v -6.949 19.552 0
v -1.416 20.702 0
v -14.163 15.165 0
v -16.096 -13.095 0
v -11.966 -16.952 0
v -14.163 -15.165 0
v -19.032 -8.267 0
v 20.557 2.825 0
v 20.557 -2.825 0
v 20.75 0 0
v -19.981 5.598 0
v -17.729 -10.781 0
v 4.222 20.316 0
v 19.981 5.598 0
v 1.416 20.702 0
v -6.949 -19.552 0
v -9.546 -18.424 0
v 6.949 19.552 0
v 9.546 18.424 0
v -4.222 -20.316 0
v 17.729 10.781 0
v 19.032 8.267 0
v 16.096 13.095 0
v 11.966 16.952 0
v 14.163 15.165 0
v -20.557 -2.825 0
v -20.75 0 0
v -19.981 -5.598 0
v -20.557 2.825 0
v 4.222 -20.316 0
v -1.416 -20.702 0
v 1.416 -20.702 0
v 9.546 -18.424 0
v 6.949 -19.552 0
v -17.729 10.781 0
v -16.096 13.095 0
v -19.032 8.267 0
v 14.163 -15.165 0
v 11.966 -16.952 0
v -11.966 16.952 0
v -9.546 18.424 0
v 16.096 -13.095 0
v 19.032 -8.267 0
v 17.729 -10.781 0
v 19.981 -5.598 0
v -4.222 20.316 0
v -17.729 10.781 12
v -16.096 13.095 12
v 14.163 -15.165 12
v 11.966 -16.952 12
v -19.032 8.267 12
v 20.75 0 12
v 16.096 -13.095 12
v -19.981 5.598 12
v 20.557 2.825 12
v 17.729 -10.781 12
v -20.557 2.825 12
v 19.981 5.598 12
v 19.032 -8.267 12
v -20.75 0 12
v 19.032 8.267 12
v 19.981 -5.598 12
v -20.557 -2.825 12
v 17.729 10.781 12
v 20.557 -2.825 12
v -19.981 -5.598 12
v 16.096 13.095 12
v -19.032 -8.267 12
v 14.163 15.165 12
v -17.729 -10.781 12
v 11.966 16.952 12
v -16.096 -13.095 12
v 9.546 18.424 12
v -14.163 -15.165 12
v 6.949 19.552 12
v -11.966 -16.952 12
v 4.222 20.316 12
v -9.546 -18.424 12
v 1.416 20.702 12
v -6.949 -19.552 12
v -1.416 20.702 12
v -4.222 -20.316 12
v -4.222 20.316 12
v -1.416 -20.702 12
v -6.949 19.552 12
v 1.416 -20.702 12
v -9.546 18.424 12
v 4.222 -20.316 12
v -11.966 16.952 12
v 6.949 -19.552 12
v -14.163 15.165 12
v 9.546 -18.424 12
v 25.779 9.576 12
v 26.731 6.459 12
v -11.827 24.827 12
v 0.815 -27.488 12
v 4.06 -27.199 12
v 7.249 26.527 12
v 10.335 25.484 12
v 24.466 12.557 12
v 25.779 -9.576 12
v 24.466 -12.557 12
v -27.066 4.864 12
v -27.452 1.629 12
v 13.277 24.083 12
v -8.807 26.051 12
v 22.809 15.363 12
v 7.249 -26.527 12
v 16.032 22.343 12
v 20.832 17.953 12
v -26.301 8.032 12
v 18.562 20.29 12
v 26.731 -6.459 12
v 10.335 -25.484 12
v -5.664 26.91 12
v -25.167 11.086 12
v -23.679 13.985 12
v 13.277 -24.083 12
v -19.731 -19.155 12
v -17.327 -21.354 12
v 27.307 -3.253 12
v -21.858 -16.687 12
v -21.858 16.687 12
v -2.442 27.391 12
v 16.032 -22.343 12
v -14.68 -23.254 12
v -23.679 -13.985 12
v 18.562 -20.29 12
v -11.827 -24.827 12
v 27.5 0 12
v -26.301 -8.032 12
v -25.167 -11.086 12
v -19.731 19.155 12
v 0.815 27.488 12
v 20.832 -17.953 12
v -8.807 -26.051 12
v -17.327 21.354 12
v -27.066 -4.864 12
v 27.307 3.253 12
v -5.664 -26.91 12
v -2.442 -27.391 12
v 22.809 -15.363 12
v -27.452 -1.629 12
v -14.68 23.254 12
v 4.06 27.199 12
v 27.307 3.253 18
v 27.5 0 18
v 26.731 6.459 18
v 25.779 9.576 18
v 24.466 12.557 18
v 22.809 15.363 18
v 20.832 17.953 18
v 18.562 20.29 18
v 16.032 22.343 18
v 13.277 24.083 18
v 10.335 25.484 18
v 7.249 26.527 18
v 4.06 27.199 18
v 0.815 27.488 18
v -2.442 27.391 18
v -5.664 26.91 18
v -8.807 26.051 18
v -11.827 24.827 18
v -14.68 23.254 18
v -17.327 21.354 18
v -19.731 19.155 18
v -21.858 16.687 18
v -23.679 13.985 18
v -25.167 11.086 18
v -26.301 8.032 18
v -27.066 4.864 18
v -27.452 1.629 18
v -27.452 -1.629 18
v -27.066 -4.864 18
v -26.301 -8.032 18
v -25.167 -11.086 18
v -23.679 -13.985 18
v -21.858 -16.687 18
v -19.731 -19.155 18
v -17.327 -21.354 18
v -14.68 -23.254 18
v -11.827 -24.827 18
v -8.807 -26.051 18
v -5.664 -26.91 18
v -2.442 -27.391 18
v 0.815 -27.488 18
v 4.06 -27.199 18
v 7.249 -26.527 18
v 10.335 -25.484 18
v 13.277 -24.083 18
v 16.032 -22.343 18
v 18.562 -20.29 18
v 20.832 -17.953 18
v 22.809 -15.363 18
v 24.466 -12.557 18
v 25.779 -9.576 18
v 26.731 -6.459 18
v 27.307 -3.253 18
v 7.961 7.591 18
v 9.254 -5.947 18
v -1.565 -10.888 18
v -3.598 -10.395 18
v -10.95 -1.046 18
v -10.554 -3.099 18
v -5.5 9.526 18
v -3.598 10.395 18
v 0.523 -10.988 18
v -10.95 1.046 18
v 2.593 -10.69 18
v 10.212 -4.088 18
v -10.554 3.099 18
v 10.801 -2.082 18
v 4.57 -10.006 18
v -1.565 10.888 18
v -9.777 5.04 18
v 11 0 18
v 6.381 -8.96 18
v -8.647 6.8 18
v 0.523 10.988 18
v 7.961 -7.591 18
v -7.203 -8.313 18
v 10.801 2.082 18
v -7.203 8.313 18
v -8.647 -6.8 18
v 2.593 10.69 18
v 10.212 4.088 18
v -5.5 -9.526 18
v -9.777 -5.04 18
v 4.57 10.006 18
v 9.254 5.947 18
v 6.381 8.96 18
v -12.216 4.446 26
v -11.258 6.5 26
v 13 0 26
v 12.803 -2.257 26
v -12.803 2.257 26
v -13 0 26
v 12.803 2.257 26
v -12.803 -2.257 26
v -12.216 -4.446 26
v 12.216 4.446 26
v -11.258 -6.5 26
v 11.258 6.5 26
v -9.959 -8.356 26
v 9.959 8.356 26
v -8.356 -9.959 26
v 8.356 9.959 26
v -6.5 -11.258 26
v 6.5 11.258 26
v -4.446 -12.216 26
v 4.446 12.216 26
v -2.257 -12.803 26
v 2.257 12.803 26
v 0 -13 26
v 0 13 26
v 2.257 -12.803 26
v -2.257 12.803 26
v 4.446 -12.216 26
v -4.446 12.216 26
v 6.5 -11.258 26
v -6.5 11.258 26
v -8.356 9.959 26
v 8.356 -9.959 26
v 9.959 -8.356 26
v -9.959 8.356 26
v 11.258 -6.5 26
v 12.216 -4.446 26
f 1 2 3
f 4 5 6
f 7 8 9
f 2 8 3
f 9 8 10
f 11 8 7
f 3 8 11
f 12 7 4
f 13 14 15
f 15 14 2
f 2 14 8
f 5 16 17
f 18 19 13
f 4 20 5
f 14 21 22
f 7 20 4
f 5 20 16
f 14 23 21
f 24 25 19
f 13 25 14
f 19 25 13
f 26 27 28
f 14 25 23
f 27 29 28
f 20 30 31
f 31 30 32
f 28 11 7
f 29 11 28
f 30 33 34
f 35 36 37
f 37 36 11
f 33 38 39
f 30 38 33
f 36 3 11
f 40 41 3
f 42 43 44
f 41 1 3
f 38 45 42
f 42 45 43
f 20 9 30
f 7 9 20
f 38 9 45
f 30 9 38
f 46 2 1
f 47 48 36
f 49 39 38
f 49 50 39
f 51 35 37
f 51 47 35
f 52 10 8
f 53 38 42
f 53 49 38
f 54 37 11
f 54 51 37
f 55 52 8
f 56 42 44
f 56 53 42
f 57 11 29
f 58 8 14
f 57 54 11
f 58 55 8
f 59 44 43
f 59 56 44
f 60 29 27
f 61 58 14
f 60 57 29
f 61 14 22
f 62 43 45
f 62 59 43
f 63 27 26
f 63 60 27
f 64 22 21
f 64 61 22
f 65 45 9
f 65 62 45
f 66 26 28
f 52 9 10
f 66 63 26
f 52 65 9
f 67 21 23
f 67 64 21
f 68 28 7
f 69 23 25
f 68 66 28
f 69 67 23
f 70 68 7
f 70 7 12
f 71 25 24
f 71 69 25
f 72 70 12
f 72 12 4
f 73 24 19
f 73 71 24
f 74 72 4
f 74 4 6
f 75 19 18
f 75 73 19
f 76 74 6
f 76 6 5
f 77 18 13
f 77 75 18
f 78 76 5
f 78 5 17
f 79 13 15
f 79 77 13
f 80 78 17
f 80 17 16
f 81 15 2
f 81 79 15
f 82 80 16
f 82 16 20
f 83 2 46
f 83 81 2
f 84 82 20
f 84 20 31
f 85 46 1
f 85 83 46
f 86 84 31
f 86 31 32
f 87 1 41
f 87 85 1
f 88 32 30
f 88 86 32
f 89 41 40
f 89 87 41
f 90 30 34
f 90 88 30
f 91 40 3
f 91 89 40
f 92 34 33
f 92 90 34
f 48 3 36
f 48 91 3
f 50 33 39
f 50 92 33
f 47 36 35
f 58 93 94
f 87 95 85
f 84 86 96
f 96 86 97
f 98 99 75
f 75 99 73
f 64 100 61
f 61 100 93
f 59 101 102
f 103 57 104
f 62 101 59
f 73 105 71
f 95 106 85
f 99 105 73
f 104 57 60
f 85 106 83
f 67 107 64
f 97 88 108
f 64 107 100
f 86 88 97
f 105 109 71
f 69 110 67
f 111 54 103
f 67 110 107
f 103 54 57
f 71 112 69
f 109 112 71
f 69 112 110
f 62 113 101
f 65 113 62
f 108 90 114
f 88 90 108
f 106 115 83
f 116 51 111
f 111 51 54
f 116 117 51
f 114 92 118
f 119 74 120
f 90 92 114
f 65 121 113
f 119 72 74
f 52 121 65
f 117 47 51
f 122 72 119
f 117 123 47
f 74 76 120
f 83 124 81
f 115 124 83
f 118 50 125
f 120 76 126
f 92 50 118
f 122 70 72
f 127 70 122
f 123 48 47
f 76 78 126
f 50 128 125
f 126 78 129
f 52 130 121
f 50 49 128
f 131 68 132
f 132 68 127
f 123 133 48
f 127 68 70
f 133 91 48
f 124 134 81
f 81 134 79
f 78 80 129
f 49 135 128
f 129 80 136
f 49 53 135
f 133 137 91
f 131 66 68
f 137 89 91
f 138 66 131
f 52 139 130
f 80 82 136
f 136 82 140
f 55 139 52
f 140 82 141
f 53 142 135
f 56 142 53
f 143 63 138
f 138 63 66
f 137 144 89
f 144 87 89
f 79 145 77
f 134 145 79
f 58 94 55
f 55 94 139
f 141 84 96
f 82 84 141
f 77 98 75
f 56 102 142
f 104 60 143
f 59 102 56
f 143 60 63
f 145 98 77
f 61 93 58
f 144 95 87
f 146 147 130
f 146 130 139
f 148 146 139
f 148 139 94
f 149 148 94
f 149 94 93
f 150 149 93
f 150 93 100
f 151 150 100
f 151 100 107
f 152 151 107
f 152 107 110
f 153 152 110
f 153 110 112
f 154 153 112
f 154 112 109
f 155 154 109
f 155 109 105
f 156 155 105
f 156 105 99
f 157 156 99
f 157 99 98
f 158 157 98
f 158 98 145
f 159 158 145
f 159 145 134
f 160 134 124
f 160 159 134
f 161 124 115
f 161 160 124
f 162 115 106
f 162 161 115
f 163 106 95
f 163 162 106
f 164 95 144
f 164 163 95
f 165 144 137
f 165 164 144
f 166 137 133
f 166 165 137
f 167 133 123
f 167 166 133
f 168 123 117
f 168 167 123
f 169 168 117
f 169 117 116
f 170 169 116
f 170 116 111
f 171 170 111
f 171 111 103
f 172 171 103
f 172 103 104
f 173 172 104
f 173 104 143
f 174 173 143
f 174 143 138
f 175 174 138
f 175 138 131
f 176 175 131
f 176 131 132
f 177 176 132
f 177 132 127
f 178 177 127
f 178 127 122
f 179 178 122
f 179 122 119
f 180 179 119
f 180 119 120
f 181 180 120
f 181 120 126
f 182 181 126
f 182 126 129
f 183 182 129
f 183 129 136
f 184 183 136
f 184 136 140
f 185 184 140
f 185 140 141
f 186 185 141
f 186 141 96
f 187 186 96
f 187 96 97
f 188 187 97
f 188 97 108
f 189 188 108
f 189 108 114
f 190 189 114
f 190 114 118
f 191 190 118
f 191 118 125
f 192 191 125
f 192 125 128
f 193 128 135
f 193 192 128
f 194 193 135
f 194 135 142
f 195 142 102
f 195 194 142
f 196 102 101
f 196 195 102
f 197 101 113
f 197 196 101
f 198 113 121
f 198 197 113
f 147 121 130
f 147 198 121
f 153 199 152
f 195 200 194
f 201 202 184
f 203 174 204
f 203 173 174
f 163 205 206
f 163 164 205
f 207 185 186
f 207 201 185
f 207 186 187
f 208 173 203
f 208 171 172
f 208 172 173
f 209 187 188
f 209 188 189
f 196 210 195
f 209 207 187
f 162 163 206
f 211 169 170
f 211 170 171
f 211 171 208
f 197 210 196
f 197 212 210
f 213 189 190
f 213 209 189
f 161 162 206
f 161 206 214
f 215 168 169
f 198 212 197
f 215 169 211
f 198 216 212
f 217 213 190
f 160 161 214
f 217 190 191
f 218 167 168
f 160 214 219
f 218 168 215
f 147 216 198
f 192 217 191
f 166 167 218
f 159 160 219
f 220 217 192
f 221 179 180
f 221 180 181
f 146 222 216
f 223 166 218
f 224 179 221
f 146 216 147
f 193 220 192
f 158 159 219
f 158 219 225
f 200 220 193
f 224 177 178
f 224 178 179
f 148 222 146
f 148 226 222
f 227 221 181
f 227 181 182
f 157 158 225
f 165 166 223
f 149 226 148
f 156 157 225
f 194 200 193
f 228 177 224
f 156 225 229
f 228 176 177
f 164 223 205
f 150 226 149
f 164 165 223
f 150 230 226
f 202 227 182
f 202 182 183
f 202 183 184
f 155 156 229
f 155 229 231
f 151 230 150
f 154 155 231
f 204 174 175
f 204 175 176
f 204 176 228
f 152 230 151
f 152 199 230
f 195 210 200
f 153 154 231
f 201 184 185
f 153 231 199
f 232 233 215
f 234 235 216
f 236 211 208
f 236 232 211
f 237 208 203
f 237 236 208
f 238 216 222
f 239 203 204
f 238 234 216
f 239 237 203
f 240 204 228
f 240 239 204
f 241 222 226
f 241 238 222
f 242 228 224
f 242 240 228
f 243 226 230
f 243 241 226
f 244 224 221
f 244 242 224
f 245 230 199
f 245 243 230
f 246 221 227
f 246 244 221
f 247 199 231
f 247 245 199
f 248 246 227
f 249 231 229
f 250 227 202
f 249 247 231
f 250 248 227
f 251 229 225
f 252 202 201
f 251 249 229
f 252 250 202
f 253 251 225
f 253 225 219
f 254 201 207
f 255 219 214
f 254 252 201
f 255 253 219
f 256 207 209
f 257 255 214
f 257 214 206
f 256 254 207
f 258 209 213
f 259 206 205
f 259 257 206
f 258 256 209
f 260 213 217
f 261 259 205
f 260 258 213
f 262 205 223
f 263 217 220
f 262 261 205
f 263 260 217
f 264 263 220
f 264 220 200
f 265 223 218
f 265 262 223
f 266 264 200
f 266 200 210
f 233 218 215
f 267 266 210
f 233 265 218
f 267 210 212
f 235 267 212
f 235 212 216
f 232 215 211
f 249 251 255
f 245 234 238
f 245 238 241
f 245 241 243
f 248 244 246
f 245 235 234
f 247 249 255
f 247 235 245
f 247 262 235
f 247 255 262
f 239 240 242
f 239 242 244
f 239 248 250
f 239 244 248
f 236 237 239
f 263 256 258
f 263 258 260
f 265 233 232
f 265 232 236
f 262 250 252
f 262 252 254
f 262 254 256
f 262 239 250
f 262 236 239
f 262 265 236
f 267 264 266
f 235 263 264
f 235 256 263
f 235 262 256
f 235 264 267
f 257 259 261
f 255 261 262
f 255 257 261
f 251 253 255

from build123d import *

# Parameters (mm, degrees)
CYLINDER001_R     = 27.5
CYLINDER001_DEPTH = 6
CYLINDER_R        = 20.75
CYLINDER_DEPTH    = 12


with BuildPart() as cylinder001:
    # Cylinder001 → Cylinder001 (new body)
    with BuildSketch(Plane.XY.offset(12)):
        Circle(CYLINDER001_R)
    extrude(amount=CYLINDER001_DEPTH)


with BuildPart() as cone:
    # Cone → Cone (revolve)
    with BuildSketch(Plane(origin=(0, 0, 18), x_dir=(1, 0, 0), z_dir=(0, -1, 0))):
        Polygon((0, 0), (11, 0), (13, 8), (0, 8), align=None)
    revolve(axis=Axis((0, 0, 18), (0, 0, 1)))


with BuildPart() as viewfinder_port:
    # Cylinder → Cylinder (new body)
    with BuildSketch(Plane.XY):
        Circle(CYLINDER_R)
    extrude(amount=CYLINDER_DEPTH)

    # Fusion: union Cylinder001, Cone
    add(cylinder001.part)
    add(cone.part)


solid = viewfinder_port.part
